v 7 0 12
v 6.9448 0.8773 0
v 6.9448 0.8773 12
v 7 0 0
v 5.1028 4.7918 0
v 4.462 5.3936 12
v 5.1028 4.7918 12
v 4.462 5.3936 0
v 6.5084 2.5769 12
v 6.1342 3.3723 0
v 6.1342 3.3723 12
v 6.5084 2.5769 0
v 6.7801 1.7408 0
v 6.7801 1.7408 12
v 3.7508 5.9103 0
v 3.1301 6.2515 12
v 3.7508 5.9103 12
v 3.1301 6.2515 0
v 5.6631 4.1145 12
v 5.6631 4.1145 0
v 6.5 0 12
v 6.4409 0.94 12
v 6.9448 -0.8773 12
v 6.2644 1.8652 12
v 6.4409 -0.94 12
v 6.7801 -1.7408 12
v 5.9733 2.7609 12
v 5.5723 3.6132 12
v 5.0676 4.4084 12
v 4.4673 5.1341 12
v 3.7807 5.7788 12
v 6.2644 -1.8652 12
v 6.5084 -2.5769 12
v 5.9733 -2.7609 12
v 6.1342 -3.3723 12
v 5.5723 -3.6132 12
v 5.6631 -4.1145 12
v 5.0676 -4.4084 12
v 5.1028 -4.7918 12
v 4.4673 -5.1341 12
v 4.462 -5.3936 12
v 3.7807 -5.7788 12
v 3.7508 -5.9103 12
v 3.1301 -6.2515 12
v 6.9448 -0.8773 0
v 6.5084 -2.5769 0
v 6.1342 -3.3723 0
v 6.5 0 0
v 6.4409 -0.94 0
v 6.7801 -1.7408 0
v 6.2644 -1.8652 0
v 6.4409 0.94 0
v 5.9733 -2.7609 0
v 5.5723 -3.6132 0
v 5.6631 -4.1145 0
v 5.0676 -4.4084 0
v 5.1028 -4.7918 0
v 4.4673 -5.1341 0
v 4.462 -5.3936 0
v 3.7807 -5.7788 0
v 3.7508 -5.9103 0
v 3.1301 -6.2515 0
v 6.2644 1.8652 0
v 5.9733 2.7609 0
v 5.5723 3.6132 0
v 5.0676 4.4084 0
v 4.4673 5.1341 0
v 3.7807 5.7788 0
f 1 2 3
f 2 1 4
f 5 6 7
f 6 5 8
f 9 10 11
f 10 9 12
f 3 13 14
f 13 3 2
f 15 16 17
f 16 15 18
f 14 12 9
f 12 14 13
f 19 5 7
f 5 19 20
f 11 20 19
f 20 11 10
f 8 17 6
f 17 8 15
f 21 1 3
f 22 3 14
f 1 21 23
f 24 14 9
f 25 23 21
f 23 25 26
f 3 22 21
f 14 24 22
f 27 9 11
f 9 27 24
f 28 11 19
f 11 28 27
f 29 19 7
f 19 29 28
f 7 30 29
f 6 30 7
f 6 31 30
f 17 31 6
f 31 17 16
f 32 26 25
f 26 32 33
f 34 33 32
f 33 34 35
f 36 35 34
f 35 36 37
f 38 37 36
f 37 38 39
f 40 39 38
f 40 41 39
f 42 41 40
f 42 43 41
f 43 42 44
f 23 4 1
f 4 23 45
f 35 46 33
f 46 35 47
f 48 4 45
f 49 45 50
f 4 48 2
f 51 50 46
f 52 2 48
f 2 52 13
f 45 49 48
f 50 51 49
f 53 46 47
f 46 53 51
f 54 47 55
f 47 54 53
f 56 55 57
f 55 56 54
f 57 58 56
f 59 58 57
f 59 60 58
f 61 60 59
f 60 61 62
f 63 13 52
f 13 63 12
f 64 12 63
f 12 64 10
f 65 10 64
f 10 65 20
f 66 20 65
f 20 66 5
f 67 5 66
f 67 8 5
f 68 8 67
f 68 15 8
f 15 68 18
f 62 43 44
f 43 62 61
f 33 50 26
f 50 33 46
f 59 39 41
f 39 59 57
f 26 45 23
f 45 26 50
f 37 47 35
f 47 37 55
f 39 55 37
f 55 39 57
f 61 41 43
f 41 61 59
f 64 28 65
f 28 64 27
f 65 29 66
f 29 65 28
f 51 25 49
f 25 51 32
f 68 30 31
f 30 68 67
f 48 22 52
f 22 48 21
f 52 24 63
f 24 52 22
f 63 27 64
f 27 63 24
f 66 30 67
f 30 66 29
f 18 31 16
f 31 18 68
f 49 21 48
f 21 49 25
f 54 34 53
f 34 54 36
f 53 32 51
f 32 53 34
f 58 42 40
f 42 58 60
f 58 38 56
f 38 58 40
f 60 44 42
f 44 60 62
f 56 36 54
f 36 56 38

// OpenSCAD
$fn = 50;


difference() {
	union() {
		cylinder(h = 12, r = 7.0000000000);
		translate(v = [-4.0000000000, 0, 0]) {
			cylinder(h = 12, r = 7.0000000000);
		}
	}
	union() {
		cylinder(h = 12, r = 3.2500000000);
		cylinder(h = 12, r = 1.8000000000);
		cylinder(h = 12, r = 1.8000000000);
		cylinder(h = 12, r = 1.8000000000);
		translate(v = [-8.5000000000, 0, 0]) {
			hull() {
				translate(v = [-3.7500000000, 0.0000000000, 0]) {
					cylinder(h = 12, r = 7.5000000000);
				}
				translate(v = [3.7500000000, 0.0000000000, 0]) {
					cylinder(h = 12, r = 7.5000000000);
				}
				translate(v = [-3.7500000000, -0.0000000000, 0]) {
					cylinder(h = 12, r = 7.5000000000);
				}
				translate(v = [3.7500000000, -0.0000000000, 0]) {
					cylinder(h = 12, r = 7.5000000000);
				}
			}
		}
		translate(v = [-1.0000000000, 0, 0.0000000000]) {
			cylinder(h = 12, r = 7.5000000000);
		}
	}
}
